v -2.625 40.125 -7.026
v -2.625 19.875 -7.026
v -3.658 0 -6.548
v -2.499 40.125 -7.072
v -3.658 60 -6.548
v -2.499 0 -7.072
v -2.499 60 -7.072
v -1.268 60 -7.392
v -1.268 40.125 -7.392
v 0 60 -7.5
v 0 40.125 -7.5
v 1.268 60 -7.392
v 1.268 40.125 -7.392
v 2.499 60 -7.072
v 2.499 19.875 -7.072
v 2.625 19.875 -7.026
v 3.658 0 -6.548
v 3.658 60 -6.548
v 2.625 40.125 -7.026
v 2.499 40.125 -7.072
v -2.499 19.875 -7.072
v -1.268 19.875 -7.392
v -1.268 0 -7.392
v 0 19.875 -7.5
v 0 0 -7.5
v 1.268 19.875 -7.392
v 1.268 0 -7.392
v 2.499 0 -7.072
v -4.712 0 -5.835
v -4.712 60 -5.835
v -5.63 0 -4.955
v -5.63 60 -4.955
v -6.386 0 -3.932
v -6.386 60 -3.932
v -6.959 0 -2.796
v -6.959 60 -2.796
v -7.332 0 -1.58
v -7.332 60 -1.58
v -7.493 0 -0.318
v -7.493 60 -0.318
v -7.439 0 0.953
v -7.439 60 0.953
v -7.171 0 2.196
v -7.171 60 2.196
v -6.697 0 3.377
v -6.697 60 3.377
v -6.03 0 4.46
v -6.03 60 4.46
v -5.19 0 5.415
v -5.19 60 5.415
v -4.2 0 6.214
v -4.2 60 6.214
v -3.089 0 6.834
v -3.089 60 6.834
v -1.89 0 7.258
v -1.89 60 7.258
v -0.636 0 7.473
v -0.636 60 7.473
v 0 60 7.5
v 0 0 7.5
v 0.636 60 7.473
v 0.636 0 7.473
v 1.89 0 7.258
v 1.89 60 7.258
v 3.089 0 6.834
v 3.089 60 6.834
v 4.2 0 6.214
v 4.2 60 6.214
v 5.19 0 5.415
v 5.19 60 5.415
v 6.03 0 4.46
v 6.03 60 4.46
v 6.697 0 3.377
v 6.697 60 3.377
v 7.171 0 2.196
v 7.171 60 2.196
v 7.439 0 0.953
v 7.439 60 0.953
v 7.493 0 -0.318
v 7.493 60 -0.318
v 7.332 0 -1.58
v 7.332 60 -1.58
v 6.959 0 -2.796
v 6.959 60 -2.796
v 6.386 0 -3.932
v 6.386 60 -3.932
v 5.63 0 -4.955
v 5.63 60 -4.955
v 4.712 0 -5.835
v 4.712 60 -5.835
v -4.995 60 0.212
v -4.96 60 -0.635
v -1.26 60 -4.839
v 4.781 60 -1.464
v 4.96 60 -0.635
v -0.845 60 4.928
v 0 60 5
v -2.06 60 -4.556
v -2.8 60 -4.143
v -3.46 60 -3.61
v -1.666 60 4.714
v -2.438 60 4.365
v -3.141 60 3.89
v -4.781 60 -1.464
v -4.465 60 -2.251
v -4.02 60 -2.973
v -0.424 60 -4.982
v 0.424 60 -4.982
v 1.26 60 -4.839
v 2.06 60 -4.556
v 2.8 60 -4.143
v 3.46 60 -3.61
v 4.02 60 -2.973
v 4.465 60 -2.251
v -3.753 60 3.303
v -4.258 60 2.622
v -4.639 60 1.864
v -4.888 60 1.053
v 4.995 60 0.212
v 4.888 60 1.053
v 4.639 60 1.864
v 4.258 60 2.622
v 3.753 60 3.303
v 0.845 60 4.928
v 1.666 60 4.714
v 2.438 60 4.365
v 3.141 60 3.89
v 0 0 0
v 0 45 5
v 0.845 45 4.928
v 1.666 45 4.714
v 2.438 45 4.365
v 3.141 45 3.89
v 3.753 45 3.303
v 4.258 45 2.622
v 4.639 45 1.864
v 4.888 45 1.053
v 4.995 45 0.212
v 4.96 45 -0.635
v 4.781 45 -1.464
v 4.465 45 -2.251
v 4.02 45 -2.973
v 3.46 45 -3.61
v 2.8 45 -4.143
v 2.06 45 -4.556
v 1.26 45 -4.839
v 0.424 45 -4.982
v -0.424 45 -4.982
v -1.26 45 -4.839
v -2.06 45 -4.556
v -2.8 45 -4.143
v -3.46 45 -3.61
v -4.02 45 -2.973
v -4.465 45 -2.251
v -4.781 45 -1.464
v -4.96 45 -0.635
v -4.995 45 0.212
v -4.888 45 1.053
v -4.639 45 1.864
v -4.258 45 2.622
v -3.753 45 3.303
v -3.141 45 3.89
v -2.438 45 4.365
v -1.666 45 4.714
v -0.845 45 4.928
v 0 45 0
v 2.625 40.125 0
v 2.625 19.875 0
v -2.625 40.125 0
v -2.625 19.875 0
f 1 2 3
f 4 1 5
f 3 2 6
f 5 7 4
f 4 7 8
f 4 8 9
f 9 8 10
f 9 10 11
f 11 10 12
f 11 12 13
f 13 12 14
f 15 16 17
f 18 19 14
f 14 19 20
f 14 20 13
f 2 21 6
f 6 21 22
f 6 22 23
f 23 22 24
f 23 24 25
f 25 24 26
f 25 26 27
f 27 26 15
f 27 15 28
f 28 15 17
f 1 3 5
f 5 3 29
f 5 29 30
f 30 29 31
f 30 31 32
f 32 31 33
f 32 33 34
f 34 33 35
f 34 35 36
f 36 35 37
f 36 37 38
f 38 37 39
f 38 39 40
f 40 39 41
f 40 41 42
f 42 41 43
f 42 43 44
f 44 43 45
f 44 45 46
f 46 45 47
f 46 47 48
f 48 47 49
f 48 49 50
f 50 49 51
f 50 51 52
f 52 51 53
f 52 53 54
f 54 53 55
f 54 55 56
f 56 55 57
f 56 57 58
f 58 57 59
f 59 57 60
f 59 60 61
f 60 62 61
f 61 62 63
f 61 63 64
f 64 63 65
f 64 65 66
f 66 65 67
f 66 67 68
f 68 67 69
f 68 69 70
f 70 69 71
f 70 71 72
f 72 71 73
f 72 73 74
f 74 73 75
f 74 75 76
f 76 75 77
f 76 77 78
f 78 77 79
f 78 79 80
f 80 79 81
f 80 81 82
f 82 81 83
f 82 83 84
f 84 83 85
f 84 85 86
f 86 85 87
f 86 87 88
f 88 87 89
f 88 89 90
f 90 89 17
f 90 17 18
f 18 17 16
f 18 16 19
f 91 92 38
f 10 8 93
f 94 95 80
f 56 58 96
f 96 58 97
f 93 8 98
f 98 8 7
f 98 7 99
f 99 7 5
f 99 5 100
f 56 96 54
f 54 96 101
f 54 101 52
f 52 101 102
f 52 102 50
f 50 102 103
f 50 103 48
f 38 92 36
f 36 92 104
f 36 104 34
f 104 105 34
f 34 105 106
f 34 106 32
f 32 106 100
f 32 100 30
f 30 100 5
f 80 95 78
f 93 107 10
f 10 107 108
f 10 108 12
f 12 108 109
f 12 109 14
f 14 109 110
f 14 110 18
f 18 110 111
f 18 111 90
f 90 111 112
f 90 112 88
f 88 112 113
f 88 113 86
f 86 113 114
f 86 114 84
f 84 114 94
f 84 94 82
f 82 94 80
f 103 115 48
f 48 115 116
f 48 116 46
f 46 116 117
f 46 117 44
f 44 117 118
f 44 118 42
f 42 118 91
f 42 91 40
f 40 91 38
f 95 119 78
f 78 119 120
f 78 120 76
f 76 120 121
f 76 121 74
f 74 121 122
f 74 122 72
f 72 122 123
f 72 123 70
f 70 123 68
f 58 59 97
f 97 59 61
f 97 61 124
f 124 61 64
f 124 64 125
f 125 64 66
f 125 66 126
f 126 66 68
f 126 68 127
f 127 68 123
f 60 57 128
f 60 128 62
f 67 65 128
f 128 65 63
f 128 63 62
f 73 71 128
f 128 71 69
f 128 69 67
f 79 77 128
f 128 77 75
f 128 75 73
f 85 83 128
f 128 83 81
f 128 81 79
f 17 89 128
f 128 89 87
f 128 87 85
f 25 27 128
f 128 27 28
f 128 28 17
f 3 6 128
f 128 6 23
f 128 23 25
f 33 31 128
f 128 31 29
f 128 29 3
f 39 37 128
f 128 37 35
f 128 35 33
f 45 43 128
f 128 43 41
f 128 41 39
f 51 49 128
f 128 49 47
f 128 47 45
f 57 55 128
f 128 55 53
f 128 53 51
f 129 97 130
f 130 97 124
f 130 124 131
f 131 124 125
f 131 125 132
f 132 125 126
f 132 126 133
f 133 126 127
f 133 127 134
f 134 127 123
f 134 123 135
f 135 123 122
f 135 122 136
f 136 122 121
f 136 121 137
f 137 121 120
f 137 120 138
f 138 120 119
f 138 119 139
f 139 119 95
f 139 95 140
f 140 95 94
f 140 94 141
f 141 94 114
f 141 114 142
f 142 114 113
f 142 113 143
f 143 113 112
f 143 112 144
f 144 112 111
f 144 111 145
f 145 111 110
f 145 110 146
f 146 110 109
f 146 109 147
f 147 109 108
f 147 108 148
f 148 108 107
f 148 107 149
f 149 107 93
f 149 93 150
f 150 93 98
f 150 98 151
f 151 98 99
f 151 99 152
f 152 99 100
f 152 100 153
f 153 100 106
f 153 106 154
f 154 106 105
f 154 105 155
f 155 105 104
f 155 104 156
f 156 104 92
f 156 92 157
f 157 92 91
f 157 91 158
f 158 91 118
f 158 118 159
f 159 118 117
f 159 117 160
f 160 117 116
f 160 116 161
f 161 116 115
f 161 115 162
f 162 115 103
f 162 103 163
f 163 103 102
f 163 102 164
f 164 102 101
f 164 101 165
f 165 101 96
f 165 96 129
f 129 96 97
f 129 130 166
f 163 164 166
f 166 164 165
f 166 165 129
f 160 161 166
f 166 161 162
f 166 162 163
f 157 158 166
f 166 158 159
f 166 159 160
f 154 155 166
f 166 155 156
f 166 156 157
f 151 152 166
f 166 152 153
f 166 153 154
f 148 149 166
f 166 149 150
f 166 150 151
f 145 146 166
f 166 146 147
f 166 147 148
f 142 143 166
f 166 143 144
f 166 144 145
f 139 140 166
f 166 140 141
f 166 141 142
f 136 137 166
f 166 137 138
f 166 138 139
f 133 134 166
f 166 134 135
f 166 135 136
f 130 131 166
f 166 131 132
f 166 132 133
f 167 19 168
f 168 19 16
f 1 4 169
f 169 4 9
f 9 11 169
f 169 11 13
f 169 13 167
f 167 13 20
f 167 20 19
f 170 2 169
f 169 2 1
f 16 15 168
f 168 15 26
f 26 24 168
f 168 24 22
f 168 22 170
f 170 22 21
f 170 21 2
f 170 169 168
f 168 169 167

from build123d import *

# Parameters (mm, degrees)
SKETCH1_R           = 7.5
BOSS_EXTRUDE1_DEPTH = 60
SKETCH2_R           = 5
CUT_EXTRUDE1_DEPTH  = 15
SKETCH3_W           = 5.25
SKETCH3_H           = 20.25
CUT_EXTRUDE2_DEPTH  = 7.5


with BuildPart() as part:
    # Sketch1 → Boss-Extrude1 (new body)
    with BuildSketch(Plane(origin=(0, 0, 0), x_dir=(1, 0, 0), z_dir=(0, 1, 0))):
        Circle(SKETCH1_R)
    extrude(amount=BOSS_EXTRUDE1_DEPTH)

    # Sketch2 → Cut-Extrude1 (cut)
    with BuildSketch(Plane(origin=(0, 60, 0), x_dir=(1, 0, 0), z_dir=(0, 1, 0))):
        Circle(SKETCH2_R)
    extrude(amount=-CUT_EXTRUDE1_DEPTH, mode=Mode.SUBTRACT)

    # Sketch3 → Cut-Extrude2 (cut)
    with BuildSketch(Plane(origin=(0, 0, -7.5), x_dir=(-1, 0, 0), z_dir=(0, 0, -1))):
        with Locations((0, 30)):
            Rectangle(SKETCH3_W, SKETCH3_H)
    extrude(amount=-CUT_EXTRUDE2_DEPTH, mode=Mode.SUBTRACT)


solid = part.part
